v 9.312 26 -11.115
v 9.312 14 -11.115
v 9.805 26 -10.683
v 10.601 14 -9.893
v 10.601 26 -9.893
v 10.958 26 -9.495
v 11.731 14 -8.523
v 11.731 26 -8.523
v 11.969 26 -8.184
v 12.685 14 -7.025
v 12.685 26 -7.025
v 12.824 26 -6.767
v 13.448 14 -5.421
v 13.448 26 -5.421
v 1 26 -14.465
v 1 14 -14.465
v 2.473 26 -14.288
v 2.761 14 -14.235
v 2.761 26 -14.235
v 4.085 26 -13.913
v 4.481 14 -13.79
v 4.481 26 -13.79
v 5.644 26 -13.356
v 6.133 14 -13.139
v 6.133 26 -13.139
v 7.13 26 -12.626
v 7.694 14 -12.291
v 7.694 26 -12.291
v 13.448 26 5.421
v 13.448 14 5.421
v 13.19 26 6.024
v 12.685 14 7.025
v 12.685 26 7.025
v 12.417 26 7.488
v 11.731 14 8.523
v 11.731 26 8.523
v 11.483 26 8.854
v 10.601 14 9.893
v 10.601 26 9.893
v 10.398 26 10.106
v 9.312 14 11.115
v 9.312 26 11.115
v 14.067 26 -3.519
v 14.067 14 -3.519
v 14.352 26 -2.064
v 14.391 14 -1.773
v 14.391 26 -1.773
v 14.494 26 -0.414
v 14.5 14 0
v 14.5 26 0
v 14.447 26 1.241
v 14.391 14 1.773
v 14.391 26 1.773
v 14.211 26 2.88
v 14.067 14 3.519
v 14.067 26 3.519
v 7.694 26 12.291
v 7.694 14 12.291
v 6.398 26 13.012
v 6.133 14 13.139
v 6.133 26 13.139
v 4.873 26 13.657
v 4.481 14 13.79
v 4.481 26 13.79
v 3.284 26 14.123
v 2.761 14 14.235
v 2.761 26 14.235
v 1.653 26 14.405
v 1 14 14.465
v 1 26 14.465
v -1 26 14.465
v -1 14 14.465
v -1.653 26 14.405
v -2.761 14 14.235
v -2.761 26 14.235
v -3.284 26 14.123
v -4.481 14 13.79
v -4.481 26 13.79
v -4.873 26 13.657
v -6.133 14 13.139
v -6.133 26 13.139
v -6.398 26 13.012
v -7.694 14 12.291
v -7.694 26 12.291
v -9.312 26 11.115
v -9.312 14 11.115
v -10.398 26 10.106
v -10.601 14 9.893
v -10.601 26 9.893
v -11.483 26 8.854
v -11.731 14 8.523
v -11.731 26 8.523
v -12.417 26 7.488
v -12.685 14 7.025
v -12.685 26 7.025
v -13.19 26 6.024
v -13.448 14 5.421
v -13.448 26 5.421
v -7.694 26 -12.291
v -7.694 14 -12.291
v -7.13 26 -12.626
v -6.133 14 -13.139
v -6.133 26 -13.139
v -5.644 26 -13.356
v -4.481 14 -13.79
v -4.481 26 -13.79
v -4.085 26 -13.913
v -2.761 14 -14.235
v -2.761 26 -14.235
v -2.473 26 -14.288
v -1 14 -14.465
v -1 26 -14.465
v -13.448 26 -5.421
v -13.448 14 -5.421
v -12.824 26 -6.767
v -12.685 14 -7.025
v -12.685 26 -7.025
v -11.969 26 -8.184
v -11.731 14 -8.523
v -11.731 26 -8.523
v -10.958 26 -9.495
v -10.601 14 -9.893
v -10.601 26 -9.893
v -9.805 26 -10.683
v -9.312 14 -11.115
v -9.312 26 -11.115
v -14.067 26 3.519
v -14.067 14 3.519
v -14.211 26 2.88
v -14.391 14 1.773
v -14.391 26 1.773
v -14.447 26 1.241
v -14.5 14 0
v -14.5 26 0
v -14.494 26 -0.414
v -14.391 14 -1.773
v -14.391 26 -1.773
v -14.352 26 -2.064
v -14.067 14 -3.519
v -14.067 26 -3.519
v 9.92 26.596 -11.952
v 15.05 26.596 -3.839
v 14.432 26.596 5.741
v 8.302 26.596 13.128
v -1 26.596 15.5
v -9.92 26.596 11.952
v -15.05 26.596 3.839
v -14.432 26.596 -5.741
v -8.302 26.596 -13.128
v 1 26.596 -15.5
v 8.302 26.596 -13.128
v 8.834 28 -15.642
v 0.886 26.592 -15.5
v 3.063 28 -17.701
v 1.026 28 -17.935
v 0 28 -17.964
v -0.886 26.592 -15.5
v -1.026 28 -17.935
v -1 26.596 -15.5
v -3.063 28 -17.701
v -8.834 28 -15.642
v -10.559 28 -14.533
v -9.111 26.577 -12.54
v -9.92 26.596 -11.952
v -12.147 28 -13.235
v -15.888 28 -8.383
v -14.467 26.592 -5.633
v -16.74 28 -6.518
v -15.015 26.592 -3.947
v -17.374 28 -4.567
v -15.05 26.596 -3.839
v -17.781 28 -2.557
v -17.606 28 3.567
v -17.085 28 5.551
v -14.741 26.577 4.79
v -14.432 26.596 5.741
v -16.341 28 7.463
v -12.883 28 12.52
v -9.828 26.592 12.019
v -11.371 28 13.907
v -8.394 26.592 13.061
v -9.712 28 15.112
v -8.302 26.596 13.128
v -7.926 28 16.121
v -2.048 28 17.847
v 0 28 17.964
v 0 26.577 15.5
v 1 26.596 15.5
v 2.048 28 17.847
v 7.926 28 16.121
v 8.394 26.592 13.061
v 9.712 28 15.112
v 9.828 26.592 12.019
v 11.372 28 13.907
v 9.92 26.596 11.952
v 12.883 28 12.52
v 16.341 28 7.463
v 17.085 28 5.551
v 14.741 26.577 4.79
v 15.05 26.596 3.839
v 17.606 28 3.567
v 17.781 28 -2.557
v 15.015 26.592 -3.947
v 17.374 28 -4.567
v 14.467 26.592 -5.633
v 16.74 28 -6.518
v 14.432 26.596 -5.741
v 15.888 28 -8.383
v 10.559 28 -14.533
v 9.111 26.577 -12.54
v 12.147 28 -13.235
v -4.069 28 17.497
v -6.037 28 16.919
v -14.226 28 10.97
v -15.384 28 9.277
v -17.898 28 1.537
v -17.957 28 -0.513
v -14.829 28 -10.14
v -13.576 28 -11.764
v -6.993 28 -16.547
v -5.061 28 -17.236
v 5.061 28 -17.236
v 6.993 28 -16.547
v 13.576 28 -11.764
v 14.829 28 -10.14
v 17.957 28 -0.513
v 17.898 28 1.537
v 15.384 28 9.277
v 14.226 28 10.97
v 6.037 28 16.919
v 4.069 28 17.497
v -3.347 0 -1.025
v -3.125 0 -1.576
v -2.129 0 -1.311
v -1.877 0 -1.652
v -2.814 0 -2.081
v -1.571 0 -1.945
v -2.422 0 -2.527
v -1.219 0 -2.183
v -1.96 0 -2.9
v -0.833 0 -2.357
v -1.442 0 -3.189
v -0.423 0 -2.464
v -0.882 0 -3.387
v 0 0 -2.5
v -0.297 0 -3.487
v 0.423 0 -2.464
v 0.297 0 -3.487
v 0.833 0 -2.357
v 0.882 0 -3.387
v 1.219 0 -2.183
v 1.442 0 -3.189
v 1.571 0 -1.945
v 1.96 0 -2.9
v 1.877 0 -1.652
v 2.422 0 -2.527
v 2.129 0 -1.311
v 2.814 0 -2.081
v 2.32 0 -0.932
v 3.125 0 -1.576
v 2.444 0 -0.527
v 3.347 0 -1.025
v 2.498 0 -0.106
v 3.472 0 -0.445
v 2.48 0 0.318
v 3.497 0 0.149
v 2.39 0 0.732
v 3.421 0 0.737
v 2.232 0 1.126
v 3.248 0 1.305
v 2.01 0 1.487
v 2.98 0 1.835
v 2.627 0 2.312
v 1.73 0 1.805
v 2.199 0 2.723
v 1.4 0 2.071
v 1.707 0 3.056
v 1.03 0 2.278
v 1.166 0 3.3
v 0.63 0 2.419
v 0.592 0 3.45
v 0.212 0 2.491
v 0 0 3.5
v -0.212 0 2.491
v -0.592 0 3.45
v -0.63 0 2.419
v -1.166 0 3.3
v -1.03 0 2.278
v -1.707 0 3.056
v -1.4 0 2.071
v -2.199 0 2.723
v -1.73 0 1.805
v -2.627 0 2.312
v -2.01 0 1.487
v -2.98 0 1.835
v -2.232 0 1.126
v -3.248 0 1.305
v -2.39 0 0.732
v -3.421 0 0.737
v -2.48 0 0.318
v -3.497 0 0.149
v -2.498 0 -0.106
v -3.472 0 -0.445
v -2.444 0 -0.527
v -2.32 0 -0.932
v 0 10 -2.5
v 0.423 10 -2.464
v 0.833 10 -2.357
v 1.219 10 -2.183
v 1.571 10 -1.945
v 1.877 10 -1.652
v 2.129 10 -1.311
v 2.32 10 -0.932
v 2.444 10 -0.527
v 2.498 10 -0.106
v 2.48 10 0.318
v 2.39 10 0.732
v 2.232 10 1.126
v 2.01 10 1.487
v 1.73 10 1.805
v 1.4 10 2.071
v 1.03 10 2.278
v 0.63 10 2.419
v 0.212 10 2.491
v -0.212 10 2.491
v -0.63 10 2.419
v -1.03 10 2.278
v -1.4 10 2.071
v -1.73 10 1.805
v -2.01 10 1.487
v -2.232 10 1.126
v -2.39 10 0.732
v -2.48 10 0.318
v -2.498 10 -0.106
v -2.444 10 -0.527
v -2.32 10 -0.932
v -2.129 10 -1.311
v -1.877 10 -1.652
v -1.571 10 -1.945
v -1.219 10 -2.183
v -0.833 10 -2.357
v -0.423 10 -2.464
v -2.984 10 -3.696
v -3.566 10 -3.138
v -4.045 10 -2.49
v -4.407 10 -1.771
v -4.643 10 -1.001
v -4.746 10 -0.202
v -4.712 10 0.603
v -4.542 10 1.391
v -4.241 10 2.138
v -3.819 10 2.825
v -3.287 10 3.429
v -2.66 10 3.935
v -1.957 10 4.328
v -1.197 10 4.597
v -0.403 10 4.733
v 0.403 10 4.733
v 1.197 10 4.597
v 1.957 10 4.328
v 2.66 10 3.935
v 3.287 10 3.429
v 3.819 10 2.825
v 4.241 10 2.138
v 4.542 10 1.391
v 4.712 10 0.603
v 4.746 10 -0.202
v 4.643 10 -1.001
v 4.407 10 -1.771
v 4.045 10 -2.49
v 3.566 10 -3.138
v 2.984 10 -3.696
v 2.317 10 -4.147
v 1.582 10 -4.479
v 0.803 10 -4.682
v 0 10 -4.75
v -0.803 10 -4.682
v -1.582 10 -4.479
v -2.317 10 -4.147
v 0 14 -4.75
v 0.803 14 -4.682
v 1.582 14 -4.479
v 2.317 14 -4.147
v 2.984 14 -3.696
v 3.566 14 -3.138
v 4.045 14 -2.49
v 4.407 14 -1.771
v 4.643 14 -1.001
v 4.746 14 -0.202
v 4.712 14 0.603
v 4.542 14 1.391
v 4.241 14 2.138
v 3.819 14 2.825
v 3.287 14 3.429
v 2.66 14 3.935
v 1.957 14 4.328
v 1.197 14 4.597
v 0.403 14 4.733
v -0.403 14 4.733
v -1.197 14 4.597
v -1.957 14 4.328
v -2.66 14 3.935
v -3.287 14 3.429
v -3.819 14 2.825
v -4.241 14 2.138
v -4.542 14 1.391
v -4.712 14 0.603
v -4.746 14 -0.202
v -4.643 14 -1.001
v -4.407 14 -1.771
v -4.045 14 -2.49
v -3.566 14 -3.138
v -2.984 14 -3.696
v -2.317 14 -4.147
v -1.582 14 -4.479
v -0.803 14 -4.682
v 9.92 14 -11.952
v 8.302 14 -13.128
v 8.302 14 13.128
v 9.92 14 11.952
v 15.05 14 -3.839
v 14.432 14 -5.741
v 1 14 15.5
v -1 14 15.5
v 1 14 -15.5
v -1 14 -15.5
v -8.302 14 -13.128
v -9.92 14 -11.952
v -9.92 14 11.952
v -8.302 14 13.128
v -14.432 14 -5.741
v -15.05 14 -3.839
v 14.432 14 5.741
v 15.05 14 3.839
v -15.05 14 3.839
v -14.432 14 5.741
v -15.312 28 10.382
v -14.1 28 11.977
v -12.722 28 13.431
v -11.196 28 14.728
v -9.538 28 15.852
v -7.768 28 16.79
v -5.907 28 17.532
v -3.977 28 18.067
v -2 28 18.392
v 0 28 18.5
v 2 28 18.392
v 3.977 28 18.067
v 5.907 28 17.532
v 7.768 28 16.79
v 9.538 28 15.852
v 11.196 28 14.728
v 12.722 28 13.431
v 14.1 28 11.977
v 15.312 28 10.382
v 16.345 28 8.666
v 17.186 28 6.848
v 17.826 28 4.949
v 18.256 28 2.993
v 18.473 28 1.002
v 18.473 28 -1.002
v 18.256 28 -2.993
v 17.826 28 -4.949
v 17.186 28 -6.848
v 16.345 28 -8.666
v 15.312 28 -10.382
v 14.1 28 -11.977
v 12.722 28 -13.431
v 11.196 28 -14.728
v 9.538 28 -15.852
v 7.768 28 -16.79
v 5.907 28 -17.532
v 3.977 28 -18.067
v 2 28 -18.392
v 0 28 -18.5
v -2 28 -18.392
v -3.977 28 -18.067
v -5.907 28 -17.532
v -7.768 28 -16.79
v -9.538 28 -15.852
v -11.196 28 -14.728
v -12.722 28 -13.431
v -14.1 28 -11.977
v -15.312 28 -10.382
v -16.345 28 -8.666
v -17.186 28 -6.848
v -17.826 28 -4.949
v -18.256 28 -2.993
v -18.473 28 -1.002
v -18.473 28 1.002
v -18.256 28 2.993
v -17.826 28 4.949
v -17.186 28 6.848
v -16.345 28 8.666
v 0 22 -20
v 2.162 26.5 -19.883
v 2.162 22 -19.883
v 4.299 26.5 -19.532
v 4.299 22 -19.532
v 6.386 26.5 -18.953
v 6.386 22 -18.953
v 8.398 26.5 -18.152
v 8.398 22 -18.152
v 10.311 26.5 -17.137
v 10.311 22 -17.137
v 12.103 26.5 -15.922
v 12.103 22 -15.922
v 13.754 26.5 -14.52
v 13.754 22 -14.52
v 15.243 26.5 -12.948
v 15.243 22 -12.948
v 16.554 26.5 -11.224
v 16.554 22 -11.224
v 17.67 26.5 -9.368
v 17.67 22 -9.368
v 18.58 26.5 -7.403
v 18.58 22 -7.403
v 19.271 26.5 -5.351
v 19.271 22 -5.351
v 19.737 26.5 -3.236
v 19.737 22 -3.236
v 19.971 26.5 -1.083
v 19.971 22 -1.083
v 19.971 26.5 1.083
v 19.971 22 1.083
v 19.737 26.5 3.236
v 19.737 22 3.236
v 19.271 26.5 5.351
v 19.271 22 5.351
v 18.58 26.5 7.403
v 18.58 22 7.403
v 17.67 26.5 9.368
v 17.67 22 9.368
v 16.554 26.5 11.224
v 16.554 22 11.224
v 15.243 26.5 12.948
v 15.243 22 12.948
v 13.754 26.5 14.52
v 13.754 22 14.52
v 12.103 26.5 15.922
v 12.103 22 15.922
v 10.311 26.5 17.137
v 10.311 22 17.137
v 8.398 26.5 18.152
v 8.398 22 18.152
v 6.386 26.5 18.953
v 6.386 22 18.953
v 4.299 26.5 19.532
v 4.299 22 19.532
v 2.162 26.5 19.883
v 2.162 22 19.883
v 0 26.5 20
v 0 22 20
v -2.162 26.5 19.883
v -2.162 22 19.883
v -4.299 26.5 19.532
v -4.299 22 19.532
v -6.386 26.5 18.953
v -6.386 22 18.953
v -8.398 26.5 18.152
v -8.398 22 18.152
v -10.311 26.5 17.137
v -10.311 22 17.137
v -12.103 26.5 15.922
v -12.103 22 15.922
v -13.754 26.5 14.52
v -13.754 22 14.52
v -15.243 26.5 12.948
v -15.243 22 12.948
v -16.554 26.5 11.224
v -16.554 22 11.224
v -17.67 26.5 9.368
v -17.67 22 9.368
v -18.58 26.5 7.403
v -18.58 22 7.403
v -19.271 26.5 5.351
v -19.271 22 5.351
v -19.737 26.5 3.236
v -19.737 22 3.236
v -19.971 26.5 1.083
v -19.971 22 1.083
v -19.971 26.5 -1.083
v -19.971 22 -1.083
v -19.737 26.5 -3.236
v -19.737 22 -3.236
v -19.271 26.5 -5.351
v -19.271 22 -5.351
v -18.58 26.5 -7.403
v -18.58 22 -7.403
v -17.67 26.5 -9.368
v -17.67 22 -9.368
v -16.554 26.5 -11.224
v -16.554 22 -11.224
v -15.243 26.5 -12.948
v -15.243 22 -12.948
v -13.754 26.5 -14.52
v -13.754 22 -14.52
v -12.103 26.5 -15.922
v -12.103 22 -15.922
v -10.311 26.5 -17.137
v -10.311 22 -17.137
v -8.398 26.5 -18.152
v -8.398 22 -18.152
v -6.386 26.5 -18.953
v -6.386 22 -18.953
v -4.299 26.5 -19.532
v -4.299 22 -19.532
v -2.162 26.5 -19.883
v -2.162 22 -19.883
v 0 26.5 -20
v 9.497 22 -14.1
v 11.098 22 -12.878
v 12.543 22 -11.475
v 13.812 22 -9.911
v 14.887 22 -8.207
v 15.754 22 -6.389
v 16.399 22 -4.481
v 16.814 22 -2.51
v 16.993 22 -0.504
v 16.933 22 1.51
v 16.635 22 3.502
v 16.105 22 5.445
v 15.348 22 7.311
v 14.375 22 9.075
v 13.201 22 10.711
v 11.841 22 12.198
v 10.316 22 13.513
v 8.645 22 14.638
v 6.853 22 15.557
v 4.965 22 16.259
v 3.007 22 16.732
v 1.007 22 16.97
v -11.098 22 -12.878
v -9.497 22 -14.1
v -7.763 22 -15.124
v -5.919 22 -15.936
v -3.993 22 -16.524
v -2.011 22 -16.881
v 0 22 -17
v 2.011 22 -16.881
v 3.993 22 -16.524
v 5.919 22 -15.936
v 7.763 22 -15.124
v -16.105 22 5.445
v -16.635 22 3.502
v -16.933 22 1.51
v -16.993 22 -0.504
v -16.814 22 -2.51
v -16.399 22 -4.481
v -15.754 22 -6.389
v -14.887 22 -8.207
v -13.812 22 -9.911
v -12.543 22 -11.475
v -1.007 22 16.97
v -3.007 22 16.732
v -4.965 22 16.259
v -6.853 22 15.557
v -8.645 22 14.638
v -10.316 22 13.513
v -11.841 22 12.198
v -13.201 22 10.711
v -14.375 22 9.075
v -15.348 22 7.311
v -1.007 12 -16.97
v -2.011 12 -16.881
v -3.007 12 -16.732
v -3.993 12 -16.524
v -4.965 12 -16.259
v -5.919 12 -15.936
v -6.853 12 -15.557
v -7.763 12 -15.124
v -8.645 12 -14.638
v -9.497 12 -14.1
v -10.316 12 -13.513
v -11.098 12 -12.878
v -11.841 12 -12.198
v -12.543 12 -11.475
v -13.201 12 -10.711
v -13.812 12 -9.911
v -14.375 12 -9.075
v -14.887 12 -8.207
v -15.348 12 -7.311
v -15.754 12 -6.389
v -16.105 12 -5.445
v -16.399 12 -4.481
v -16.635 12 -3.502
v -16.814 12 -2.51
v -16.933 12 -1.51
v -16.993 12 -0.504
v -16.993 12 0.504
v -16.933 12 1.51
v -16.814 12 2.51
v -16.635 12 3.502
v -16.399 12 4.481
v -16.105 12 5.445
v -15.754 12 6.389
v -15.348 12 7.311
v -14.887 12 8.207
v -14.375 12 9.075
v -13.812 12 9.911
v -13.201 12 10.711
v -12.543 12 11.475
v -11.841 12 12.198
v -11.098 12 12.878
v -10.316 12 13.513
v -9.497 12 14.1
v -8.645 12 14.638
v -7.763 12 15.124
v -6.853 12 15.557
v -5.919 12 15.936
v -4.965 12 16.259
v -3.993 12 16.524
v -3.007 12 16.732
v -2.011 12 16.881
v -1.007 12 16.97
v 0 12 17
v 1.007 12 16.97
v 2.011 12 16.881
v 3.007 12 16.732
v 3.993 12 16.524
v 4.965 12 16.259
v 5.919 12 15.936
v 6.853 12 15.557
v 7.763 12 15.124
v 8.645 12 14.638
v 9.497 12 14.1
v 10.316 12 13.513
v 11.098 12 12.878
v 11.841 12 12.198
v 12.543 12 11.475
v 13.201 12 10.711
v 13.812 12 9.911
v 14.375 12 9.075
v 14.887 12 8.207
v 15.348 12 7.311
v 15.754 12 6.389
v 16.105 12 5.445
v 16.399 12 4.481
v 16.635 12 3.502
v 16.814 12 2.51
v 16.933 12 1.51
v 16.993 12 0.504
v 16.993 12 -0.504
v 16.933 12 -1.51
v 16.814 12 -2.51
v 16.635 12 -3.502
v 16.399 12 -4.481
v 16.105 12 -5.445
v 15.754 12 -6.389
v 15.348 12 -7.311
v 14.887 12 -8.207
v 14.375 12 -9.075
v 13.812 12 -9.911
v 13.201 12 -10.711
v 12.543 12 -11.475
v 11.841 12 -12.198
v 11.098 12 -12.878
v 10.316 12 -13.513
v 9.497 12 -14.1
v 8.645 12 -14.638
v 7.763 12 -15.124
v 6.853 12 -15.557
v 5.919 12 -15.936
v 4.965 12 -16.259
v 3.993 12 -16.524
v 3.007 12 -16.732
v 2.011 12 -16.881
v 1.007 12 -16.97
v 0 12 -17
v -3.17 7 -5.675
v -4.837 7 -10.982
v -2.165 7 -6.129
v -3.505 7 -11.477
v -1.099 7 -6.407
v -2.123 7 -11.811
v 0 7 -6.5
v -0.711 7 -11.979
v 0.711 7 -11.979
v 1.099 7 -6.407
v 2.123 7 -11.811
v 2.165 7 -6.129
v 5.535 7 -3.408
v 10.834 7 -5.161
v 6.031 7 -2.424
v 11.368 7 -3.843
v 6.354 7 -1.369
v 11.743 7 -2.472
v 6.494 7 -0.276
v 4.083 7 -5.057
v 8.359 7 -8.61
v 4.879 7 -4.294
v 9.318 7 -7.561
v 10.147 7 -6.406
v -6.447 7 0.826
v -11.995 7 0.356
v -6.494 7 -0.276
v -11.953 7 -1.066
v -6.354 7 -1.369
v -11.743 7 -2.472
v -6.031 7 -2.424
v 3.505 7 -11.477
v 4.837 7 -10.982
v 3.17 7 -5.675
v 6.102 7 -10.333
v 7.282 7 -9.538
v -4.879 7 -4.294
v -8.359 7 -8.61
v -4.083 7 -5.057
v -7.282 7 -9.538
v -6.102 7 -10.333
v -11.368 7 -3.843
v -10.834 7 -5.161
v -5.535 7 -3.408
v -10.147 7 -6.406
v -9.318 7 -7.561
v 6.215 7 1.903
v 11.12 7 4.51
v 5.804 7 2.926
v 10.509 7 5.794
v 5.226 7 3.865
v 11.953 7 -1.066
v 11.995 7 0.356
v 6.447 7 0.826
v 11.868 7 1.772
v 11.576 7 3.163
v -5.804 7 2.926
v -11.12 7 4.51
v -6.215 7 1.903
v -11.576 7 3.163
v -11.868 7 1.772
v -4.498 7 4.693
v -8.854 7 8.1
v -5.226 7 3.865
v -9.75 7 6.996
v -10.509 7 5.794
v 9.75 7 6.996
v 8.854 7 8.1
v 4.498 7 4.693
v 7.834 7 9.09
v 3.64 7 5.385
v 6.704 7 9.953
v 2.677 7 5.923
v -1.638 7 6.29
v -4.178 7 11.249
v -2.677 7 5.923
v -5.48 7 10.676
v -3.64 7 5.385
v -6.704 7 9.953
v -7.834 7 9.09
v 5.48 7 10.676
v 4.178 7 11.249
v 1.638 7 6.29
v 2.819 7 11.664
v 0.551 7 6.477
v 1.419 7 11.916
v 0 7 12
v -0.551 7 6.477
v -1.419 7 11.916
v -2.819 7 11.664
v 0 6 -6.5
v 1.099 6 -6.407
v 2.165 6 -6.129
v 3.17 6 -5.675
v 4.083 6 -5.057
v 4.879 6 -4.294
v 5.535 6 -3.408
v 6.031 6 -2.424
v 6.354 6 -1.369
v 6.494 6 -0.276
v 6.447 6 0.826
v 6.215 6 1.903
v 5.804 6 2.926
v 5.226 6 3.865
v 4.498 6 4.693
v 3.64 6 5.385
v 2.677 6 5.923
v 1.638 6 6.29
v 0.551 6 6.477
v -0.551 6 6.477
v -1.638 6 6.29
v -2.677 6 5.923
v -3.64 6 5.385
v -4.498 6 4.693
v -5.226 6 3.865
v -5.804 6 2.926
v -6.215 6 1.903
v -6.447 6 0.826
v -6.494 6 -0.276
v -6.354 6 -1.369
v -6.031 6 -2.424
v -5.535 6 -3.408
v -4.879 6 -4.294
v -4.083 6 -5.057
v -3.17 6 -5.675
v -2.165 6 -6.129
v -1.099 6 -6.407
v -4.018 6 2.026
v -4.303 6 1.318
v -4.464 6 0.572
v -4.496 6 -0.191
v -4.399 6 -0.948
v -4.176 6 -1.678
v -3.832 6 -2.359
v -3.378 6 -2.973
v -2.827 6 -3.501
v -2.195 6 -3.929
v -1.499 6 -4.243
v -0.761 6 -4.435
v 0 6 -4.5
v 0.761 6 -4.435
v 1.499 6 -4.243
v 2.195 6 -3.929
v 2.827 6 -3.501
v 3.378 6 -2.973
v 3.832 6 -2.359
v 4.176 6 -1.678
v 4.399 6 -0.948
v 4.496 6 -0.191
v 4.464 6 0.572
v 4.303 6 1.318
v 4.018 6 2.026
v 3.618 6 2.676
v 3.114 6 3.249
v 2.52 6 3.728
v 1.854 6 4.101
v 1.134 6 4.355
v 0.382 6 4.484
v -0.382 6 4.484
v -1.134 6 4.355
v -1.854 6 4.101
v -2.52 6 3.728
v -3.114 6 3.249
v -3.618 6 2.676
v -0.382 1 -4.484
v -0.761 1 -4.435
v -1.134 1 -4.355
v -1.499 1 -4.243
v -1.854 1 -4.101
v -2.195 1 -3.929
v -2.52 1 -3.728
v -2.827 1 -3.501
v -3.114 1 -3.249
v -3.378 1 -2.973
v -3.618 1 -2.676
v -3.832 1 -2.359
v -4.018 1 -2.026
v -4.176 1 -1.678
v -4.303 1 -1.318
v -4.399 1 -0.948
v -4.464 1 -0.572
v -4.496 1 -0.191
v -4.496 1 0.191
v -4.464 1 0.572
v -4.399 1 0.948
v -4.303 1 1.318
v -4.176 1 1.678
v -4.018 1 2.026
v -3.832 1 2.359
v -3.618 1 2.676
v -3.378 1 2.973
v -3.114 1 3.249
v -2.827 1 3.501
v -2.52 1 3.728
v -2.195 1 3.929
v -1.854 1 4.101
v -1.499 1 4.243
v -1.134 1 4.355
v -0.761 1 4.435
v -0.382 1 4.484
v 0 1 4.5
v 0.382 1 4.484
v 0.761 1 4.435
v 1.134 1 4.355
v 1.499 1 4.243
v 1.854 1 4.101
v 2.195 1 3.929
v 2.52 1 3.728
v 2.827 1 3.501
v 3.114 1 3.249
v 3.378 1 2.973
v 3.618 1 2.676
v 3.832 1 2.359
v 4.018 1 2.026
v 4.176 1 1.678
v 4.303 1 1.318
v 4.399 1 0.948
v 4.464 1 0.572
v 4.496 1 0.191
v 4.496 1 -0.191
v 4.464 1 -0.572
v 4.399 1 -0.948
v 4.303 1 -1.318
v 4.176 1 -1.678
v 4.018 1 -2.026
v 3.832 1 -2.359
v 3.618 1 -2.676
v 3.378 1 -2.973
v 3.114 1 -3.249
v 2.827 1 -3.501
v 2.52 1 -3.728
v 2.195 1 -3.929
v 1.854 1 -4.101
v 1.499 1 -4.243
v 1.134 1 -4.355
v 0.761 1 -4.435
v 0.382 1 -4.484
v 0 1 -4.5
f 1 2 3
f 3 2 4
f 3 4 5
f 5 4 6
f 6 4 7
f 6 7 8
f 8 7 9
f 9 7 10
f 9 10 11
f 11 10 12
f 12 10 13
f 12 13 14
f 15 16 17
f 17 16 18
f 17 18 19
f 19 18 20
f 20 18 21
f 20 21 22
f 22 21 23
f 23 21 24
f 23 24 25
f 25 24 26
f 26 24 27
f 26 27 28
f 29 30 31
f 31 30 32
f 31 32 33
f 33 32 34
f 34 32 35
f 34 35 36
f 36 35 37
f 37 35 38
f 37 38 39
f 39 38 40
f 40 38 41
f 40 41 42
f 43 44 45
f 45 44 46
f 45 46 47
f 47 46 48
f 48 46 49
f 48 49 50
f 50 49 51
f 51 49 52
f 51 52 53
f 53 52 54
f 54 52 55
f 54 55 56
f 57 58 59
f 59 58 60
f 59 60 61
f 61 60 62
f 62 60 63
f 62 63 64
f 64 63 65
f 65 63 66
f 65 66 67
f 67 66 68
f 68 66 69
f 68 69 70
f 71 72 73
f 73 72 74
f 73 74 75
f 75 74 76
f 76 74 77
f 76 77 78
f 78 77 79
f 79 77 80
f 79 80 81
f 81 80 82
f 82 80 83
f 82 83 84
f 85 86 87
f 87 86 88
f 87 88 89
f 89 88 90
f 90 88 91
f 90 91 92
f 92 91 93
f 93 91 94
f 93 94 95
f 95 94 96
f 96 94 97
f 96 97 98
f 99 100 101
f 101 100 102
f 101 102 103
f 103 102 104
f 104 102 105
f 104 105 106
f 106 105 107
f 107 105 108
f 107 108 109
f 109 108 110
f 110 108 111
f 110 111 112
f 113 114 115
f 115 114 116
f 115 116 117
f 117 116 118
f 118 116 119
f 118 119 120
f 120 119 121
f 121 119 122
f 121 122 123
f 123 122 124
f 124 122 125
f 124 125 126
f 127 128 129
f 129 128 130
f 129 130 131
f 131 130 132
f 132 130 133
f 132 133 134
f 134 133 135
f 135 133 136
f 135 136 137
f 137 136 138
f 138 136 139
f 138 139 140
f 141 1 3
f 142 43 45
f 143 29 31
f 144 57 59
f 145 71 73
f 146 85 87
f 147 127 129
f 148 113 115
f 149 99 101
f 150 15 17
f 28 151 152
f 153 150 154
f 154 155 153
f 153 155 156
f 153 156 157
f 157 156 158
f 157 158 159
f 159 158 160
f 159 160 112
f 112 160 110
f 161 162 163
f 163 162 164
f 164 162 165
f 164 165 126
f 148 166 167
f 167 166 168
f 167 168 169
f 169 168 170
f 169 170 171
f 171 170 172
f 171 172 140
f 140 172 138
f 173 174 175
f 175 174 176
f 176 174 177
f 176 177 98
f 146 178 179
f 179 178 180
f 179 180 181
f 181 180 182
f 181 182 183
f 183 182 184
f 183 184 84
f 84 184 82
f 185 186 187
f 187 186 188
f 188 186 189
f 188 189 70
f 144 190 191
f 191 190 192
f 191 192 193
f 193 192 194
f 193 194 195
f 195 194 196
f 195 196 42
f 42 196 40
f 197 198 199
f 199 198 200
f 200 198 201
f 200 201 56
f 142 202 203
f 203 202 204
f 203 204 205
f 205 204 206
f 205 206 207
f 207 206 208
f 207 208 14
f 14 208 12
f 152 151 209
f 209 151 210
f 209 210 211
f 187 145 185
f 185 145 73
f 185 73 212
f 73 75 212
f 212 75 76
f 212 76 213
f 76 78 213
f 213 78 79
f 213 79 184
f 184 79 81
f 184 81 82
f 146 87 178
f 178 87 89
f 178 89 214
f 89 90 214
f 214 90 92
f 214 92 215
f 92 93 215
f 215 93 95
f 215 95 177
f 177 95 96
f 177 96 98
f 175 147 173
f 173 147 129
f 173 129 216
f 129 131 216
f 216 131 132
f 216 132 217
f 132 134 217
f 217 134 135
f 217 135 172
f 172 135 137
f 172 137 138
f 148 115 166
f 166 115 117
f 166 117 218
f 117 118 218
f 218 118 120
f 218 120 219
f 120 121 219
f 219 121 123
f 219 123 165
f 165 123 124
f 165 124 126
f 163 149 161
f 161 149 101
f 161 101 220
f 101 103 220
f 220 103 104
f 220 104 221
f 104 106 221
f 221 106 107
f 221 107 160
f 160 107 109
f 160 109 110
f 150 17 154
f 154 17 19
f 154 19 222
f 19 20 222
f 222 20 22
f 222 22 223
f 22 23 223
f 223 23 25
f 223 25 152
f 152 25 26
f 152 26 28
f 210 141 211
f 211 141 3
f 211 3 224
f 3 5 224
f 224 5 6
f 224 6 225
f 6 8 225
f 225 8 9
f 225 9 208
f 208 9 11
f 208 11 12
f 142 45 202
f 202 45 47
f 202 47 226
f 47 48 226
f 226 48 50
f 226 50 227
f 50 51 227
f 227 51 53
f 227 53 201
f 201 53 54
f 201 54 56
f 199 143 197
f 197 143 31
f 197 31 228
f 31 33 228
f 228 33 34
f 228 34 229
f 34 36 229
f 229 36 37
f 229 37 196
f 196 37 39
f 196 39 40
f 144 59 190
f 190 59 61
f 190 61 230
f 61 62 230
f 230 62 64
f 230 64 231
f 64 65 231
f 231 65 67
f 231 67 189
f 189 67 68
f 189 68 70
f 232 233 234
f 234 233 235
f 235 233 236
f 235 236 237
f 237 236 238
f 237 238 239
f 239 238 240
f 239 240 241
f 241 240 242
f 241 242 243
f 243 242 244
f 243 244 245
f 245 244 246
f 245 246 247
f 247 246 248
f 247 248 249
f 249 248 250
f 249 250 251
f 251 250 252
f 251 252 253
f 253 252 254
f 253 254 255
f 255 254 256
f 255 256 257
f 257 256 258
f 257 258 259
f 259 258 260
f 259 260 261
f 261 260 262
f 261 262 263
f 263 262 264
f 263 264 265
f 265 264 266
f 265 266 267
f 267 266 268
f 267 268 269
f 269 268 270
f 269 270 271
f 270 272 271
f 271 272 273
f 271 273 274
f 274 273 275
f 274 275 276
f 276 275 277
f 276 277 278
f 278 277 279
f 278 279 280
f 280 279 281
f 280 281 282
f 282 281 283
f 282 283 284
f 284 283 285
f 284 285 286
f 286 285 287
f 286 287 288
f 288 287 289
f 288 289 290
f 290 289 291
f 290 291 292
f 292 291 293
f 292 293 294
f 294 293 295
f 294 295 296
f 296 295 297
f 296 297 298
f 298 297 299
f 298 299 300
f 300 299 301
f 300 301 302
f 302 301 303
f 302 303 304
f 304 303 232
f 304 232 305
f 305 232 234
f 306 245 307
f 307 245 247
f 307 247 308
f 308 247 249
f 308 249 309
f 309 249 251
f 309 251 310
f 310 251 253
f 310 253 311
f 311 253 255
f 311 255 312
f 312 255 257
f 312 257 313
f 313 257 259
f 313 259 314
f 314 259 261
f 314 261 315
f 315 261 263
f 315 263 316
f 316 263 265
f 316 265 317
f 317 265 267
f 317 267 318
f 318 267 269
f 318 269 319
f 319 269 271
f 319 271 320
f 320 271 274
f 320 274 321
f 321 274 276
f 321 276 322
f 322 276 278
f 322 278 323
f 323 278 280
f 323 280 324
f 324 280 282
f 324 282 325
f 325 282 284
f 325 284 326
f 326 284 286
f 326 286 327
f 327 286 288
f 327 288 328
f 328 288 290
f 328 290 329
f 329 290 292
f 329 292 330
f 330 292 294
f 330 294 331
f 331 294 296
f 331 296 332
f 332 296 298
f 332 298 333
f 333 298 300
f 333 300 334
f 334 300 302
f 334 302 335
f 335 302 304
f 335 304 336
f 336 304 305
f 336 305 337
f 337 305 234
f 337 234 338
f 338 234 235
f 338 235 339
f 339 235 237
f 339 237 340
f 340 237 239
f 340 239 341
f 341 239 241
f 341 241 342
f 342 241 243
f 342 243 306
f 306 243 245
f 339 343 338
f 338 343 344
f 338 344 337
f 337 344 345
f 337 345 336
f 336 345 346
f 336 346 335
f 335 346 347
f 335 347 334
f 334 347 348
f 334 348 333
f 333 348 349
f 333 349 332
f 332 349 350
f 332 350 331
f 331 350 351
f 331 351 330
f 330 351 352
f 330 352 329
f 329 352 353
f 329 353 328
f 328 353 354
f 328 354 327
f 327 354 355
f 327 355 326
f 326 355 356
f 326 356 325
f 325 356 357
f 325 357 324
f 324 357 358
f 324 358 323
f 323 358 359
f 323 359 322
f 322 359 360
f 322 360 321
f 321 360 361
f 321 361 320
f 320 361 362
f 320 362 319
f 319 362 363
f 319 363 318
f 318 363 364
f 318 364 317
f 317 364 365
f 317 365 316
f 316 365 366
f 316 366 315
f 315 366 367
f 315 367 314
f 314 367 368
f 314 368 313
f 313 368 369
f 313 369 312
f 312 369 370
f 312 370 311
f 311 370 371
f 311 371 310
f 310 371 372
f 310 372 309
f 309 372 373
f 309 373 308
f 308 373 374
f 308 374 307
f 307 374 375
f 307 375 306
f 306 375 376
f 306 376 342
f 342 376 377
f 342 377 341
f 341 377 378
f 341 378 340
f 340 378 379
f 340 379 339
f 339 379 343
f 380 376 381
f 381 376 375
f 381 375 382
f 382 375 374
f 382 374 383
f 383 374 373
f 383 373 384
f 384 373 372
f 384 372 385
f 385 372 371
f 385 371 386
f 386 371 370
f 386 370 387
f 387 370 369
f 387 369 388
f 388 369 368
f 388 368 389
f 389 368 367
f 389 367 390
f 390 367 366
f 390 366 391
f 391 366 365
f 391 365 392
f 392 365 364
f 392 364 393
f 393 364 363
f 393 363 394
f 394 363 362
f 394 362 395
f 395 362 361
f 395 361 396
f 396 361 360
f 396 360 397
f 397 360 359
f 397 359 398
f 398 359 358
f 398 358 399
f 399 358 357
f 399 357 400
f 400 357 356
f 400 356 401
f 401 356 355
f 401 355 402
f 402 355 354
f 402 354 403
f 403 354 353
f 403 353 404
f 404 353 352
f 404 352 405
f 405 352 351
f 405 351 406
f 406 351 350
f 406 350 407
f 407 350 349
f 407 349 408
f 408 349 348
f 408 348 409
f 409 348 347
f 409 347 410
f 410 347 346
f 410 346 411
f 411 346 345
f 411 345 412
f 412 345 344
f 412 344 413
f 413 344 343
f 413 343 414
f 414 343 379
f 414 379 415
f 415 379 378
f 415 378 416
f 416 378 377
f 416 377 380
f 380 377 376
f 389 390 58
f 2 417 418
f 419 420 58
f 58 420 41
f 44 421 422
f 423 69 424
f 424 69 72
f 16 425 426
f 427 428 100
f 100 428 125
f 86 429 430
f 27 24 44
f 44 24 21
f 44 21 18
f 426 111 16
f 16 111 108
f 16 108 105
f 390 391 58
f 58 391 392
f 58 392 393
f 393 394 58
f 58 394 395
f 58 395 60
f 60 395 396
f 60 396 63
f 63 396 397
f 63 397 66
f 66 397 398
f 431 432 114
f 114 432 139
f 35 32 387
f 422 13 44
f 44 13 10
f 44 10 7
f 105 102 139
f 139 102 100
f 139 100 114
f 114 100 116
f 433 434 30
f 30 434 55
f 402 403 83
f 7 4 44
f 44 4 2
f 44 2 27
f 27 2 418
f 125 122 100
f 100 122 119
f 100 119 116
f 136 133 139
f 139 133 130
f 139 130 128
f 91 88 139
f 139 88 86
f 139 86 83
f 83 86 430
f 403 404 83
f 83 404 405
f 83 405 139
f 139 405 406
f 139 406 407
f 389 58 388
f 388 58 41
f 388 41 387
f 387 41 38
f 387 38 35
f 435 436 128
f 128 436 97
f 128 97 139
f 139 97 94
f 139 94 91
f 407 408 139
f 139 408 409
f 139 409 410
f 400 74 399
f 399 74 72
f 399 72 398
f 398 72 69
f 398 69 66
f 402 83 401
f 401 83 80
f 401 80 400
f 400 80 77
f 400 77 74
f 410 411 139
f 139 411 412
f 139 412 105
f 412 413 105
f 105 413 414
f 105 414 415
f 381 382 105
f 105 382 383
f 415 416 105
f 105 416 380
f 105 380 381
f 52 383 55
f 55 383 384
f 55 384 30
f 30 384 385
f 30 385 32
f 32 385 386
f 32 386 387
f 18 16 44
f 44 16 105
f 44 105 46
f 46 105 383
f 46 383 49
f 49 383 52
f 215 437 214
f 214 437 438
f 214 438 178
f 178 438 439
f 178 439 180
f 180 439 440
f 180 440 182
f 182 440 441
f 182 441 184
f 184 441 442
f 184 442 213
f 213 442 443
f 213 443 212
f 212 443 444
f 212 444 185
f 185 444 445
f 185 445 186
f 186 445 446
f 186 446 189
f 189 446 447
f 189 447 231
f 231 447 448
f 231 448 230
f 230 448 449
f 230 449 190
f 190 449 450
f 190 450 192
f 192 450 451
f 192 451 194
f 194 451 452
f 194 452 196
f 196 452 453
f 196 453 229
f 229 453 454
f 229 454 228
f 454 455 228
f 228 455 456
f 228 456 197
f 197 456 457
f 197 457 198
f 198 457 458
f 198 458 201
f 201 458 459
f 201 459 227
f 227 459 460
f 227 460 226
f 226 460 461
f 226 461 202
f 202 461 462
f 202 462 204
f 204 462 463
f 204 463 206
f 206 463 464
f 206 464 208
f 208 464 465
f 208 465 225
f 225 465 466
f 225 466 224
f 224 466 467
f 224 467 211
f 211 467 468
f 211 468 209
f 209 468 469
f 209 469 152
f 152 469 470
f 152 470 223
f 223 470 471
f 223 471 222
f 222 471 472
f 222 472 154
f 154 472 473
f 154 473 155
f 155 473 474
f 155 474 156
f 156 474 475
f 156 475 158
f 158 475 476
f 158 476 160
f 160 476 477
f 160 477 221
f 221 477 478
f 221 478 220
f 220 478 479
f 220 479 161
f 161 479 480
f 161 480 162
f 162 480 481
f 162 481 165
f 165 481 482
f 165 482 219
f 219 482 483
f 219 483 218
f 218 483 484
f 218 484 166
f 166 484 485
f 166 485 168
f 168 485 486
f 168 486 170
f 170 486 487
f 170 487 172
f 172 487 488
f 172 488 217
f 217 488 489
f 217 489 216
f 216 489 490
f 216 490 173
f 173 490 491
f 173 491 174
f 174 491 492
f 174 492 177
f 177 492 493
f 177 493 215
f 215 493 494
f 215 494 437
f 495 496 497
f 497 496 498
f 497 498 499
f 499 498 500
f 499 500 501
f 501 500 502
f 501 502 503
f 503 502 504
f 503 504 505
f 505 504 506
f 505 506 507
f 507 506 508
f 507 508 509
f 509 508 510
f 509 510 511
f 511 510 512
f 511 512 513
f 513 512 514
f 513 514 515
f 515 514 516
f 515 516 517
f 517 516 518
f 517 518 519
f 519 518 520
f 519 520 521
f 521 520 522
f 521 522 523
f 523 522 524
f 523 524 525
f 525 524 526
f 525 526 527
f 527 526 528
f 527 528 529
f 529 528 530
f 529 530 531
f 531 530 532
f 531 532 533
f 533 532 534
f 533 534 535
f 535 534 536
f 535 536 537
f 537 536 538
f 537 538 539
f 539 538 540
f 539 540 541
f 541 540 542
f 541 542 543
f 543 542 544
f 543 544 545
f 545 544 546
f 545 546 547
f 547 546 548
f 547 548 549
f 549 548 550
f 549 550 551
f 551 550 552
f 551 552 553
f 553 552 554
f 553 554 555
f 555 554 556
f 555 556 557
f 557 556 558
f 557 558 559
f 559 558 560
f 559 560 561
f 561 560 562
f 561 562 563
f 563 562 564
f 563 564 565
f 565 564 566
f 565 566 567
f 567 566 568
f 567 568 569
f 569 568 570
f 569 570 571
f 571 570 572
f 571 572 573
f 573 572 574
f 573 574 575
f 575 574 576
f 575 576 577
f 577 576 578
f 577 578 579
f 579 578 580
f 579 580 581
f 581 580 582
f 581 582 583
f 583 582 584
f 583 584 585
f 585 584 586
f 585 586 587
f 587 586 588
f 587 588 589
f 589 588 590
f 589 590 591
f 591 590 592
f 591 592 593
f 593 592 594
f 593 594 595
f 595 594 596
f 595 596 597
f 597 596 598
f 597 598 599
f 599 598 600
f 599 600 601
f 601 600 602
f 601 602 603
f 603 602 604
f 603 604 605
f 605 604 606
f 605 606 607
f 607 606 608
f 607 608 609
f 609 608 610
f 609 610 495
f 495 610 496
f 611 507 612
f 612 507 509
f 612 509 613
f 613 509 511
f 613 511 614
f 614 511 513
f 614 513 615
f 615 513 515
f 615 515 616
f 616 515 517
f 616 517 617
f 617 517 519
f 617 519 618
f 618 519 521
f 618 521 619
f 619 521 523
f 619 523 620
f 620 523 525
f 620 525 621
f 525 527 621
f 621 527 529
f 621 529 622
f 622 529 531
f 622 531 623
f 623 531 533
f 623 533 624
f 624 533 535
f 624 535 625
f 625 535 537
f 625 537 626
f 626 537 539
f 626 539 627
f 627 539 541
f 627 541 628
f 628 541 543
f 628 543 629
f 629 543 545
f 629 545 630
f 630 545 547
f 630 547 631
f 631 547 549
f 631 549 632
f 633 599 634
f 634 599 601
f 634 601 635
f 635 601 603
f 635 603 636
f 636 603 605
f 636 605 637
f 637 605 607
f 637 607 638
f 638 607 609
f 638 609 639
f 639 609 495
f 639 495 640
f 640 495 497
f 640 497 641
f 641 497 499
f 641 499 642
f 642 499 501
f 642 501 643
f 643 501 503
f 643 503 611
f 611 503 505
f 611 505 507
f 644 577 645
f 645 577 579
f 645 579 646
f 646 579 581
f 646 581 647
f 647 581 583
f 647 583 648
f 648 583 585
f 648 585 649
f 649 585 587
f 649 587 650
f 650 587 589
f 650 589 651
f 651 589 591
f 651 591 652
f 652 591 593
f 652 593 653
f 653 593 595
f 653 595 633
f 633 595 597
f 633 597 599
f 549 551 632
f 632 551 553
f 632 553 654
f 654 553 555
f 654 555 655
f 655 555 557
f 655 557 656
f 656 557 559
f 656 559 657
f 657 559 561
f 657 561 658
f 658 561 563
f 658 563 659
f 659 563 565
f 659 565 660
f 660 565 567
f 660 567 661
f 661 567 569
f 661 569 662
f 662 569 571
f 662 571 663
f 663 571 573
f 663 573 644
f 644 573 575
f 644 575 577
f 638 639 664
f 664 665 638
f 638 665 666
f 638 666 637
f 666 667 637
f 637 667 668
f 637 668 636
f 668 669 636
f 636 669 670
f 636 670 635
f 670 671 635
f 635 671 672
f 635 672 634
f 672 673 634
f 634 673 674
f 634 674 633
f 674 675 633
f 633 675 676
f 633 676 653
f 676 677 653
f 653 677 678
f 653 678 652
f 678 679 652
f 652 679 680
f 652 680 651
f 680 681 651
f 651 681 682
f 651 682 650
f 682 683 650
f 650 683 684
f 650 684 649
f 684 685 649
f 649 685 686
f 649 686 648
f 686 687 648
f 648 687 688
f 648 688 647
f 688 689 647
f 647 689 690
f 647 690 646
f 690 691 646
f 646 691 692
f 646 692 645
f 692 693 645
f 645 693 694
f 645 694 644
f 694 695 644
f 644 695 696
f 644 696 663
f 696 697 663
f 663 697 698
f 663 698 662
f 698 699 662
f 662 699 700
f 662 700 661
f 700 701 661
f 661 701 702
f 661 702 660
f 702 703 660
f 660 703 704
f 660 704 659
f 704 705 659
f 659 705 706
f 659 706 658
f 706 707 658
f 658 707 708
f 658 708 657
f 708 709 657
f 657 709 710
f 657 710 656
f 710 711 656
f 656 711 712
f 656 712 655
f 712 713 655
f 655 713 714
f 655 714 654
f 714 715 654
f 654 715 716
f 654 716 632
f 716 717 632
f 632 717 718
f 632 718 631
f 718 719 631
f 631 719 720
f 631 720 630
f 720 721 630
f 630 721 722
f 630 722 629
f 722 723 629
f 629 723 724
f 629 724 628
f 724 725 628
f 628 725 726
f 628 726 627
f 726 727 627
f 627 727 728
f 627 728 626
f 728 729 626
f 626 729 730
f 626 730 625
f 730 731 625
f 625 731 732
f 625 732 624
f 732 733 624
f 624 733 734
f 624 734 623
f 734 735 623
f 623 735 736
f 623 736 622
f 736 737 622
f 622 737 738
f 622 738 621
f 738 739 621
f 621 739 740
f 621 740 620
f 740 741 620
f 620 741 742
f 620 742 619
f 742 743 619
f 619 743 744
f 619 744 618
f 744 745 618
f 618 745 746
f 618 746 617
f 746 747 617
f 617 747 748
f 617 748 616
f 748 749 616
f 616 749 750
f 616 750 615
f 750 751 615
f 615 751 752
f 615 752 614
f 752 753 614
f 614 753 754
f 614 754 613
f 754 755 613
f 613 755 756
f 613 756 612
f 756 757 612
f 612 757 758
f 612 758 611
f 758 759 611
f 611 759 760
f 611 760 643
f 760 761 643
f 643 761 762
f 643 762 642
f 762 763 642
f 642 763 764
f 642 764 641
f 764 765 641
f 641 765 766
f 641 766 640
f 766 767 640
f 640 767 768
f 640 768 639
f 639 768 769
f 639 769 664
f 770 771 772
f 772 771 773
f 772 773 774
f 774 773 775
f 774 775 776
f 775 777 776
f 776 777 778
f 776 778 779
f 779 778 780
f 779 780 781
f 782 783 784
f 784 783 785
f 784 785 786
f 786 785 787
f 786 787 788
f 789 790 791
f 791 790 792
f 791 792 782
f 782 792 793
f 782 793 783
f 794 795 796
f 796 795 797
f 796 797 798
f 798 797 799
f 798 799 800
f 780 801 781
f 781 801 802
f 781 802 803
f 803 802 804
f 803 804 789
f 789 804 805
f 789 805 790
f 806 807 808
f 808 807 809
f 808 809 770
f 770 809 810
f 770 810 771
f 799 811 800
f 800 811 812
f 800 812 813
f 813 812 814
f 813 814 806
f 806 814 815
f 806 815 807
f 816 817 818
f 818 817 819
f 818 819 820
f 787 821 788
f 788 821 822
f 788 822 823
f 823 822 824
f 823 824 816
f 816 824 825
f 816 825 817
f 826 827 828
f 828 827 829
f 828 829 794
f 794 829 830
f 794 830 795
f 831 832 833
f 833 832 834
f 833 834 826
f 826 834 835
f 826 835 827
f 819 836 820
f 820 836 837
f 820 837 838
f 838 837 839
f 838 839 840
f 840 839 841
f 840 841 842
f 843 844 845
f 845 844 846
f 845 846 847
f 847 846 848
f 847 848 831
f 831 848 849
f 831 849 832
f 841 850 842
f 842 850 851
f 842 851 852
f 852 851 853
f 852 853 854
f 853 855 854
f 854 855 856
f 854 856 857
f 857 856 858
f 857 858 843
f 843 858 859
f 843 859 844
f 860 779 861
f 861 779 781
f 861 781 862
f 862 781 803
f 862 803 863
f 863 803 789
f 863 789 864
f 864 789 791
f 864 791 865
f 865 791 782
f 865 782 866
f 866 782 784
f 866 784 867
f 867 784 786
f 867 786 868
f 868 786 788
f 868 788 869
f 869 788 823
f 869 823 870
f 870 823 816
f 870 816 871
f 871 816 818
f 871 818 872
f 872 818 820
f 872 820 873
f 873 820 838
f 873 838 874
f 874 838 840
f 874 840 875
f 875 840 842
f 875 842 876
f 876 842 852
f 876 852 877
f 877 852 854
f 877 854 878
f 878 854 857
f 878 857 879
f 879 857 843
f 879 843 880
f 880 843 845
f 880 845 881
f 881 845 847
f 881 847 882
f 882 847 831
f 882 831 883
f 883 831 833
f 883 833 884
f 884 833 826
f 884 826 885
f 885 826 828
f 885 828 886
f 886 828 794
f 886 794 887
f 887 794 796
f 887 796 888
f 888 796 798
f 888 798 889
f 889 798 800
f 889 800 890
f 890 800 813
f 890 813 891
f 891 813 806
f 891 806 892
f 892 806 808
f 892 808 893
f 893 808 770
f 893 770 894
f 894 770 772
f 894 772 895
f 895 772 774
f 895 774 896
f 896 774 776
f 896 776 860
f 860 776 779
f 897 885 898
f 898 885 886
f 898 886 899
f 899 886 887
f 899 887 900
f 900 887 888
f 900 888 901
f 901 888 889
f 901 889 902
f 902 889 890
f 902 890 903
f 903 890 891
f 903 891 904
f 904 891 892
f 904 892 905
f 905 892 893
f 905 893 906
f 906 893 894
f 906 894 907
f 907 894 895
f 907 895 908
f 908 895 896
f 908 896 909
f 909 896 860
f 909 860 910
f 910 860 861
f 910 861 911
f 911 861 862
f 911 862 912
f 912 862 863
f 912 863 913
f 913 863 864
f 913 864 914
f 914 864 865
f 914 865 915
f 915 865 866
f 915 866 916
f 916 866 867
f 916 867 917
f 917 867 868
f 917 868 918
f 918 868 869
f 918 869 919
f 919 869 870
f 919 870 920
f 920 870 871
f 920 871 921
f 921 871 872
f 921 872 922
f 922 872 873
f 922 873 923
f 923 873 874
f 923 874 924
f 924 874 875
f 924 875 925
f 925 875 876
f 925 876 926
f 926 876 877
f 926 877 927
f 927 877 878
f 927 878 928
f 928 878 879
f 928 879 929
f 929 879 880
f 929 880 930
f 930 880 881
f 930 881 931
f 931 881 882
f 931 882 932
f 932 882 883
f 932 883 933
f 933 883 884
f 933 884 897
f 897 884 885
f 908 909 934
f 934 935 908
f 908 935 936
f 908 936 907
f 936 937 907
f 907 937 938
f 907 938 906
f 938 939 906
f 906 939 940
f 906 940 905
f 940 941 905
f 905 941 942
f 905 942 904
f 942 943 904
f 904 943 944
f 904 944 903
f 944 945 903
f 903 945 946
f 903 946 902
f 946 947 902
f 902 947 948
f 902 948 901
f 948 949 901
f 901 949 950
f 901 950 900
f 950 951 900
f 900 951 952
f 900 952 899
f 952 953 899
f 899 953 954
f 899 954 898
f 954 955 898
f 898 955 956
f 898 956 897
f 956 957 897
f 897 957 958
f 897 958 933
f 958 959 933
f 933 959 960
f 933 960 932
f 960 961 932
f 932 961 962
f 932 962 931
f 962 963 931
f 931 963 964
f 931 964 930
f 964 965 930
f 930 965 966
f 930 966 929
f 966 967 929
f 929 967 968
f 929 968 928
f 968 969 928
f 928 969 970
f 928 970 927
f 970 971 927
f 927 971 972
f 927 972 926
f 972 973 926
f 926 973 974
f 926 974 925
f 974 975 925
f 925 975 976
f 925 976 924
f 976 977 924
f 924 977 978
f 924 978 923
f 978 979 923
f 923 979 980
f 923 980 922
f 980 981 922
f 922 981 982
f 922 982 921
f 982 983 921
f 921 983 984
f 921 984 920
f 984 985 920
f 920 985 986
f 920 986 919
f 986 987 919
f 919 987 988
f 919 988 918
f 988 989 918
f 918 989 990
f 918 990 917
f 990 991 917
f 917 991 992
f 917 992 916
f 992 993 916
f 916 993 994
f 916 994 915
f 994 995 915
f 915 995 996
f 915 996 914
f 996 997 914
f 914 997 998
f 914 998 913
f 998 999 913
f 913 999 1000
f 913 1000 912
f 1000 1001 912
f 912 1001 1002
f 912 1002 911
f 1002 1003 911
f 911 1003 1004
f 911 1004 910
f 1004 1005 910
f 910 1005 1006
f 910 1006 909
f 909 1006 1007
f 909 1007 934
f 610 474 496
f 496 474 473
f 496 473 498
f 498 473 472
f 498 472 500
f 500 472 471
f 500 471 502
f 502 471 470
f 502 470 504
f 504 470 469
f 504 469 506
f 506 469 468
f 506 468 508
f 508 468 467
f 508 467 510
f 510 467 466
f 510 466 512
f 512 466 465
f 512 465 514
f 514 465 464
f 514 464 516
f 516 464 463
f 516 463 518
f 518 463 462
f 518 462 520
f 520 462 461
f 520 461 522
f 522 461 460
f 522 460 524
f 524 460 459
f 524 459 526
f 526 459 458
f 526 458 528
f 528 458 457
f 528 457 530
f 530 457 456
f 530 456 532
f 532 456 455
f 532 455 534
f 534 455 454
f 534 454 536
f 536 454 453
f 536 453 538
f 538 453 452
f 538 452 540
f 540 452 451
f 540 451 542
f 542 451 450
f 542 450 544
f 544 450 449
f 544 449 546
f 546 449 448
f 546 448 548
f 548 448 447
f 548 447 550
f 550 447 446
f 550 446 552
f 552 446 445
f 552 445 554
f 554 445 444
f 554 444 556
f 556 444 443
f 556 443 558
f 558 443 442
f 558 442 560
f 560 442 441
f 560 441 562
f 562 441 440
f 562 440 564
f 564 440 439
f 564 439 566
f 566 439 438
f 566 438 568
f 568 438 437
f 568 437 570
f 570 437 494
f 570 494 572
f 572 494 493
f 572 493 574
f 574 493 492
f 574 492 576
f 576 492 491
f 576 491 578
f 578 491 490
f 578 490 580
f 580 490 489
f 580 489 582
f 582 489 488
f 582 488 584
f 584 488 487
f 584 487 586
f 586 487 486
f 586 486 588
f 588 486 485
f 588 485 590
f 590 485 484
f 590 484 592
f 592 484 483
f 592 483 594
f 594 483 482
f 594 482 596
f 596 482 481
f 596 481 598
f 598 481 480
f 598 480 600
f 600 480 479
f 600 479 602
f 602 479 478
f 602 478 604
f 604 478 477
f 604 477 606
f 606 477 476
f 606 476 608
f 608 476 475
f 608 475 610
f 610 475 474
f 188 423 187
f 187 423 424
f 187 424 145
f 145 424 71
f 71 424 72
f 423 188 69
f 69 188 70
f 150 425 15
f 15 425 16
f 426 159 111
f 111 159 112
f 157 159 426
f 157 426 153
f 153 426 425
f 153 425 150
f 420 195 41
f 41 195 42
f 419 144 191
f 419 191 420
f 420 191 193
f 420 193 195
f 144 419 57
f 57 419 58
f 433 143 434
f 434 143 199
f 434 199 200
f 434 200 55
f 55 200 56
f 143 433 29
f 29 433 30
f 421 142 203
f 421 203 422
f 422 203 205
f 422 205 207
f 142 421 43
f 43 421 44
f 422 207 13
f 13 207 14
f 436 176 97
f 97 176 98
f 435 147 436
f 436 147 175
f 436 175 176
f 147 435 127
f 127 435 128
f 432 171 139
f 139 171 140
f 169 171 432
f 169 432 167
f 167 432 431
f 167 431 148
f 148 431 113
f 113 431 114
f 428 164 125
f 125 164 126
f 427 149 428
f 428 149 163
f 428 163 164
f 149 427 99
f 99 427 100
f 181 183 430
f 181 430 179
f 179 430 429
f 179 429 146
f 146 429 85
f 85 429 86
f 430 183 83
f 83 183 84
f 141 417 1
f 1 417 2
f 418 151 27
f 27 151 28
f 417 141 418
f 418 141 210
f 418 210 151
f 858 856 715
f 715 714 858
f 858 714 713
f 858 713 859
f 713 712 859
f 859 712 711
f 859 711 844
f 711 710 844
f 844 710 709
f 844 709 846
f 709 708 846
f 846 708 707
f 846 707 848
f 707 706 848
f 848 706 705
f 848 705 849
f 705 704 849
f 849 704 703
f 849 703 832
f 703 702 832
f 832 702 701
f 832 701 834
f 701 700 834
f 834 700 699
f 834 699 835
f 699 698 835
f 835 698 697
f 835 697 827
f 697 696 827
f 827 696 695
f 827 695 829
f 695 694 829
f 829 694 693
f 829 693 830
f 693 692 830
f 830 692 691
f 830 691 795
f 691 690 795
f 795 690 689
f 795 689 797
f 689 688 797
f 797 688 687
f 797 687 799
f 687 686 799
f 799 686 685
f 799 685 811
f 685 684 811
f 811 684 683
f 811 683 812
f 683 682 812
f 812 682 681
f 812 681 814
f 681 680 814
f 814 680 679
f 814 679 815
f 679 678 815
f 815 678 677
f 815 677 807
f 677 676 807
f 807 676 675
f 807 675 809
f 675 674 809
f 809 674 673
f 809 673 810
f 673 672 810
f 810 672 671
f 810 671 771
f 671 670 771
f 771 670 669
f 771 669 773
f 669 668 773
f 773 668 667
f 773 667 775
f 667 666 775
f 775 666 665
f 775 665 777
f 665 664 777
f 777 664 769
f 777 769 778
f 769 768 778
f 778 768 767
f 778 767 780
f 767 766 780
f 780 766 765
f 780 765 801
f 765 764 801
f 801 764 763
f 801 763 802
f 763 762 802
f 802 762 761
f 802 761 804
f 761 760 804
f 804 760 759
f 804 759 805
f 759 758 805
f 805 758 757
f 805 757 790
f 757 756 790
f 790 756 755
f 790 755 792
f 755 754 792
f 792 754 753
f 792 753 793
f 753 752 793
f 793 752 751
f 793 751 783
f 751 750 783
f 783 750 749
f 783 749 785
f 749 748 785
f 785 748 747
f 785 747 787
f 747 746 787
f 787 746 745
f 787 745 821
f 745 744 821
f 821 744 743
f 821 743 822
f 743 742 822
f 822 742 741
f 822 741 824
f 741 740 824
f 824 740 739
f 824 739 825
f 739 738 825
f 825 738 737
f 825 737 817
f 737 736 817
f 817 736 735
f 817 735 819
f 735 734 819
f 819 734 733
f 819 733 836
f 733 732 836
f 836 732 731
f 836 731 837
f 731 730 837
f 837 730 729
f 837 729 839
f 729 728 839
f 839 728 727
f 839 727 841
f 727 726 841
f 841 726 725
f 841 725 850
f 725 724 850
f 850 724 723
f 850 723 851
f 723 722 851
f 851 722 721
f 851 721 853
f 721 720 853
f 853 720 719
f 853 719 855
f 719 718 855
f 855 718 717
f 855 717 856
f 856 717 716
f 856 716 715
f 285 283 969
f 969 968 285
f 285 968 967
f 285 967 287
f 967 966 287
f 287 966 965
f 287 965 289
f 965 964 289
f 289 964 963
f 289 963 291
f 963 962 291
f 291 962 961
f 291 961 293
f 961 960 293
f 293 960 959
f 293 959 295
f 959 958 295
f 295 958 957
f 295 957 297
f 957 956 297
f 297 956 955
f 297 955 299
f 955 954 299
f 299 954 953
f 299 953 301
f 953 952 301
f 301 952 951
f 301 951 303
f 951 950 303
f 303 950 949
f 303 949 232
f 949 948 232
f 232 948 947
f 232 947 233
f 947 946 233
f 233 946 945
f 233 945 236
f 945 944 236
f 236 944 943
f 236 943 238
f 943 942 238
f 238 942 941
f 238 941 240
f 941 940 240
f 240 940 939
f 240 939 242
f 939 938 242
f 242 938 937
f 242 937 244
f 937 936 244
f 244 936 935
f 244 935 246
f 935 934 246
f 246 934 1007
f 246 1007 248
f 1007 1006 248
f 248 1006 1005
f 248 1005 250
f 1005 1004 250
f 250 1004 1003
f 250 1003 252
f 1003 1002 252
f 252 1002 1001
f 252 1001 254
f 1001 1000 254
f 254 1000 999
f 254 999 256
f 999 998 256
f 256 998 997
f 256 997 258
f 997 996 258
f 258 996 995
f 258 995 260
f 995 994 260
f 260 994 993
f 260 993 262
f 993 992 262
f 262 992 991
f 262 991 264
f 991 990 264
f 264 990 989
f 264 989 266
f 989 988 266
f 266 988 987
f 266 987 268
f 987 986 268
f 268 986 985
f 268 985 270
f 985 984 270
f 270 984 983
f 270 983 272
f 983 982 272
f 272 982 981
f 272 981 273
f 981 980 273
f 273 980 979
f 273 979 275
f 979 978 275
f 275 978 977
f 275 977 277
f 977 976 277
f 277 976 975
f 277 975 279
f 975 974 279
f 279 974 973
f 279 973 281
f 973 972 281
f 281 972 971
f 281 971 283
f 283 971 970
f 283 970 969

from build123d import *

# Parameters (mm, degrees)
CHAMFER_1_SIZE           = 2
CHAMFER_1_SIZE2          = 3.464101615
CHAMFER_2_SIZE           = 1.5
SKETCH_2_W               = 2
SKETCH_2_H               = 31
CUT_EXTRUDE_1_DEPTH      = 32.559467676
PATTERN_CIRCULAR_1_COUNT = 10
CHAMFER_3_SIZE           = 5
CHAMFER_4_SIZE           = 1


with BuildPart() as part:
    # 草图1 → 旋转1 (revolve)
    with BuildSketch(Plane.XY, mode=Mode.PRIVATE) as revolve_1_sk:
        Polygon((-2.5, 0), (-2.5, 10), (-4.75, 10), (-4.75, 14), (-14.5, 14), (-14.5, 28), (-20, 28), (-20, 22), (-17, 22), (-17, 7), (-6.5, 7), (-6.5, 6), (-4.5, 6), (-4.5, 0), align=None)
    revolve(revolve_1_sk.sketch.rotate(Axis((0, 0, 0), (0, 1, 0)), 270), axis=Axis((0, 0, 0), (0, 1, 0)))

    # 倒角1
    chamfer_1_edges = [part.edges().sort_by_distance(p)[0] for p in [
        (0, 28, 14.5),
    ]]
    chamfer_1_side = [part.faces().sort_by_distance(p)[0] for p in [
        (0, 21, 14.5),
    ]]
    chamfer(chamfer_1_edges, length=CHAMFER_1_SIZE, length2=CHAMFER_1_SIZE2, reference=chamfer_1_side[0])

    # 倒角2
    chamfer_2_edges = [part.edges().sort_by_distance(p)[0] for p in [
        (0, 28, 20),
    ]]
    chamfer(chamfer_2_edges, length=CHAMFER_2_SIZE)

    # 草图2 → 切除-拉伸1 (cut, through all)
    with BuildSketch(Plane(origin=(0, 14, 0), x_dir=(1, 0, 0), z_dir=(0, 1, 0))):
        Rectangle(SKETCH_2_W, SKETCH_2_H)
    cut_extrude_1 = extrude(amount=CUT_EXTRUDE_1_DEPTH, mode=Mode.SUBTRACT)

    # 阵列(圆周)1: 切除-拉伸1 ×10 about axis
    pattern_circular_1_axis = Axis((0, 0, 0), (0, 1, 0))
    for i in range(1, PATTERN_CIRCULAR_1_COUNT):
        add(cut_extrude_1.rotate(pattern_circular_1_axis, i * 360 / PATTERN_CIRCULAR_1_COUNT), mode=Mode.SUBTRACT)

    # 倒角3
    chamfer_3_edges = [part.edges().sort_by_distance(p)[0] for p in [
        (0, 7, 17),
    ]]
    chamfer(chamfer_3_edges, length=CHAMFER_3_SIZE)

    # 倒角4
    chamfer_4_edges = [part.edges().sort_by_distance(p)[0] for p in [
        (0, 0, 4.5),
    ]]
    chamfer(chamfer_4_edges, length=CHAMFER_4_SIZE)


solid = part.part
